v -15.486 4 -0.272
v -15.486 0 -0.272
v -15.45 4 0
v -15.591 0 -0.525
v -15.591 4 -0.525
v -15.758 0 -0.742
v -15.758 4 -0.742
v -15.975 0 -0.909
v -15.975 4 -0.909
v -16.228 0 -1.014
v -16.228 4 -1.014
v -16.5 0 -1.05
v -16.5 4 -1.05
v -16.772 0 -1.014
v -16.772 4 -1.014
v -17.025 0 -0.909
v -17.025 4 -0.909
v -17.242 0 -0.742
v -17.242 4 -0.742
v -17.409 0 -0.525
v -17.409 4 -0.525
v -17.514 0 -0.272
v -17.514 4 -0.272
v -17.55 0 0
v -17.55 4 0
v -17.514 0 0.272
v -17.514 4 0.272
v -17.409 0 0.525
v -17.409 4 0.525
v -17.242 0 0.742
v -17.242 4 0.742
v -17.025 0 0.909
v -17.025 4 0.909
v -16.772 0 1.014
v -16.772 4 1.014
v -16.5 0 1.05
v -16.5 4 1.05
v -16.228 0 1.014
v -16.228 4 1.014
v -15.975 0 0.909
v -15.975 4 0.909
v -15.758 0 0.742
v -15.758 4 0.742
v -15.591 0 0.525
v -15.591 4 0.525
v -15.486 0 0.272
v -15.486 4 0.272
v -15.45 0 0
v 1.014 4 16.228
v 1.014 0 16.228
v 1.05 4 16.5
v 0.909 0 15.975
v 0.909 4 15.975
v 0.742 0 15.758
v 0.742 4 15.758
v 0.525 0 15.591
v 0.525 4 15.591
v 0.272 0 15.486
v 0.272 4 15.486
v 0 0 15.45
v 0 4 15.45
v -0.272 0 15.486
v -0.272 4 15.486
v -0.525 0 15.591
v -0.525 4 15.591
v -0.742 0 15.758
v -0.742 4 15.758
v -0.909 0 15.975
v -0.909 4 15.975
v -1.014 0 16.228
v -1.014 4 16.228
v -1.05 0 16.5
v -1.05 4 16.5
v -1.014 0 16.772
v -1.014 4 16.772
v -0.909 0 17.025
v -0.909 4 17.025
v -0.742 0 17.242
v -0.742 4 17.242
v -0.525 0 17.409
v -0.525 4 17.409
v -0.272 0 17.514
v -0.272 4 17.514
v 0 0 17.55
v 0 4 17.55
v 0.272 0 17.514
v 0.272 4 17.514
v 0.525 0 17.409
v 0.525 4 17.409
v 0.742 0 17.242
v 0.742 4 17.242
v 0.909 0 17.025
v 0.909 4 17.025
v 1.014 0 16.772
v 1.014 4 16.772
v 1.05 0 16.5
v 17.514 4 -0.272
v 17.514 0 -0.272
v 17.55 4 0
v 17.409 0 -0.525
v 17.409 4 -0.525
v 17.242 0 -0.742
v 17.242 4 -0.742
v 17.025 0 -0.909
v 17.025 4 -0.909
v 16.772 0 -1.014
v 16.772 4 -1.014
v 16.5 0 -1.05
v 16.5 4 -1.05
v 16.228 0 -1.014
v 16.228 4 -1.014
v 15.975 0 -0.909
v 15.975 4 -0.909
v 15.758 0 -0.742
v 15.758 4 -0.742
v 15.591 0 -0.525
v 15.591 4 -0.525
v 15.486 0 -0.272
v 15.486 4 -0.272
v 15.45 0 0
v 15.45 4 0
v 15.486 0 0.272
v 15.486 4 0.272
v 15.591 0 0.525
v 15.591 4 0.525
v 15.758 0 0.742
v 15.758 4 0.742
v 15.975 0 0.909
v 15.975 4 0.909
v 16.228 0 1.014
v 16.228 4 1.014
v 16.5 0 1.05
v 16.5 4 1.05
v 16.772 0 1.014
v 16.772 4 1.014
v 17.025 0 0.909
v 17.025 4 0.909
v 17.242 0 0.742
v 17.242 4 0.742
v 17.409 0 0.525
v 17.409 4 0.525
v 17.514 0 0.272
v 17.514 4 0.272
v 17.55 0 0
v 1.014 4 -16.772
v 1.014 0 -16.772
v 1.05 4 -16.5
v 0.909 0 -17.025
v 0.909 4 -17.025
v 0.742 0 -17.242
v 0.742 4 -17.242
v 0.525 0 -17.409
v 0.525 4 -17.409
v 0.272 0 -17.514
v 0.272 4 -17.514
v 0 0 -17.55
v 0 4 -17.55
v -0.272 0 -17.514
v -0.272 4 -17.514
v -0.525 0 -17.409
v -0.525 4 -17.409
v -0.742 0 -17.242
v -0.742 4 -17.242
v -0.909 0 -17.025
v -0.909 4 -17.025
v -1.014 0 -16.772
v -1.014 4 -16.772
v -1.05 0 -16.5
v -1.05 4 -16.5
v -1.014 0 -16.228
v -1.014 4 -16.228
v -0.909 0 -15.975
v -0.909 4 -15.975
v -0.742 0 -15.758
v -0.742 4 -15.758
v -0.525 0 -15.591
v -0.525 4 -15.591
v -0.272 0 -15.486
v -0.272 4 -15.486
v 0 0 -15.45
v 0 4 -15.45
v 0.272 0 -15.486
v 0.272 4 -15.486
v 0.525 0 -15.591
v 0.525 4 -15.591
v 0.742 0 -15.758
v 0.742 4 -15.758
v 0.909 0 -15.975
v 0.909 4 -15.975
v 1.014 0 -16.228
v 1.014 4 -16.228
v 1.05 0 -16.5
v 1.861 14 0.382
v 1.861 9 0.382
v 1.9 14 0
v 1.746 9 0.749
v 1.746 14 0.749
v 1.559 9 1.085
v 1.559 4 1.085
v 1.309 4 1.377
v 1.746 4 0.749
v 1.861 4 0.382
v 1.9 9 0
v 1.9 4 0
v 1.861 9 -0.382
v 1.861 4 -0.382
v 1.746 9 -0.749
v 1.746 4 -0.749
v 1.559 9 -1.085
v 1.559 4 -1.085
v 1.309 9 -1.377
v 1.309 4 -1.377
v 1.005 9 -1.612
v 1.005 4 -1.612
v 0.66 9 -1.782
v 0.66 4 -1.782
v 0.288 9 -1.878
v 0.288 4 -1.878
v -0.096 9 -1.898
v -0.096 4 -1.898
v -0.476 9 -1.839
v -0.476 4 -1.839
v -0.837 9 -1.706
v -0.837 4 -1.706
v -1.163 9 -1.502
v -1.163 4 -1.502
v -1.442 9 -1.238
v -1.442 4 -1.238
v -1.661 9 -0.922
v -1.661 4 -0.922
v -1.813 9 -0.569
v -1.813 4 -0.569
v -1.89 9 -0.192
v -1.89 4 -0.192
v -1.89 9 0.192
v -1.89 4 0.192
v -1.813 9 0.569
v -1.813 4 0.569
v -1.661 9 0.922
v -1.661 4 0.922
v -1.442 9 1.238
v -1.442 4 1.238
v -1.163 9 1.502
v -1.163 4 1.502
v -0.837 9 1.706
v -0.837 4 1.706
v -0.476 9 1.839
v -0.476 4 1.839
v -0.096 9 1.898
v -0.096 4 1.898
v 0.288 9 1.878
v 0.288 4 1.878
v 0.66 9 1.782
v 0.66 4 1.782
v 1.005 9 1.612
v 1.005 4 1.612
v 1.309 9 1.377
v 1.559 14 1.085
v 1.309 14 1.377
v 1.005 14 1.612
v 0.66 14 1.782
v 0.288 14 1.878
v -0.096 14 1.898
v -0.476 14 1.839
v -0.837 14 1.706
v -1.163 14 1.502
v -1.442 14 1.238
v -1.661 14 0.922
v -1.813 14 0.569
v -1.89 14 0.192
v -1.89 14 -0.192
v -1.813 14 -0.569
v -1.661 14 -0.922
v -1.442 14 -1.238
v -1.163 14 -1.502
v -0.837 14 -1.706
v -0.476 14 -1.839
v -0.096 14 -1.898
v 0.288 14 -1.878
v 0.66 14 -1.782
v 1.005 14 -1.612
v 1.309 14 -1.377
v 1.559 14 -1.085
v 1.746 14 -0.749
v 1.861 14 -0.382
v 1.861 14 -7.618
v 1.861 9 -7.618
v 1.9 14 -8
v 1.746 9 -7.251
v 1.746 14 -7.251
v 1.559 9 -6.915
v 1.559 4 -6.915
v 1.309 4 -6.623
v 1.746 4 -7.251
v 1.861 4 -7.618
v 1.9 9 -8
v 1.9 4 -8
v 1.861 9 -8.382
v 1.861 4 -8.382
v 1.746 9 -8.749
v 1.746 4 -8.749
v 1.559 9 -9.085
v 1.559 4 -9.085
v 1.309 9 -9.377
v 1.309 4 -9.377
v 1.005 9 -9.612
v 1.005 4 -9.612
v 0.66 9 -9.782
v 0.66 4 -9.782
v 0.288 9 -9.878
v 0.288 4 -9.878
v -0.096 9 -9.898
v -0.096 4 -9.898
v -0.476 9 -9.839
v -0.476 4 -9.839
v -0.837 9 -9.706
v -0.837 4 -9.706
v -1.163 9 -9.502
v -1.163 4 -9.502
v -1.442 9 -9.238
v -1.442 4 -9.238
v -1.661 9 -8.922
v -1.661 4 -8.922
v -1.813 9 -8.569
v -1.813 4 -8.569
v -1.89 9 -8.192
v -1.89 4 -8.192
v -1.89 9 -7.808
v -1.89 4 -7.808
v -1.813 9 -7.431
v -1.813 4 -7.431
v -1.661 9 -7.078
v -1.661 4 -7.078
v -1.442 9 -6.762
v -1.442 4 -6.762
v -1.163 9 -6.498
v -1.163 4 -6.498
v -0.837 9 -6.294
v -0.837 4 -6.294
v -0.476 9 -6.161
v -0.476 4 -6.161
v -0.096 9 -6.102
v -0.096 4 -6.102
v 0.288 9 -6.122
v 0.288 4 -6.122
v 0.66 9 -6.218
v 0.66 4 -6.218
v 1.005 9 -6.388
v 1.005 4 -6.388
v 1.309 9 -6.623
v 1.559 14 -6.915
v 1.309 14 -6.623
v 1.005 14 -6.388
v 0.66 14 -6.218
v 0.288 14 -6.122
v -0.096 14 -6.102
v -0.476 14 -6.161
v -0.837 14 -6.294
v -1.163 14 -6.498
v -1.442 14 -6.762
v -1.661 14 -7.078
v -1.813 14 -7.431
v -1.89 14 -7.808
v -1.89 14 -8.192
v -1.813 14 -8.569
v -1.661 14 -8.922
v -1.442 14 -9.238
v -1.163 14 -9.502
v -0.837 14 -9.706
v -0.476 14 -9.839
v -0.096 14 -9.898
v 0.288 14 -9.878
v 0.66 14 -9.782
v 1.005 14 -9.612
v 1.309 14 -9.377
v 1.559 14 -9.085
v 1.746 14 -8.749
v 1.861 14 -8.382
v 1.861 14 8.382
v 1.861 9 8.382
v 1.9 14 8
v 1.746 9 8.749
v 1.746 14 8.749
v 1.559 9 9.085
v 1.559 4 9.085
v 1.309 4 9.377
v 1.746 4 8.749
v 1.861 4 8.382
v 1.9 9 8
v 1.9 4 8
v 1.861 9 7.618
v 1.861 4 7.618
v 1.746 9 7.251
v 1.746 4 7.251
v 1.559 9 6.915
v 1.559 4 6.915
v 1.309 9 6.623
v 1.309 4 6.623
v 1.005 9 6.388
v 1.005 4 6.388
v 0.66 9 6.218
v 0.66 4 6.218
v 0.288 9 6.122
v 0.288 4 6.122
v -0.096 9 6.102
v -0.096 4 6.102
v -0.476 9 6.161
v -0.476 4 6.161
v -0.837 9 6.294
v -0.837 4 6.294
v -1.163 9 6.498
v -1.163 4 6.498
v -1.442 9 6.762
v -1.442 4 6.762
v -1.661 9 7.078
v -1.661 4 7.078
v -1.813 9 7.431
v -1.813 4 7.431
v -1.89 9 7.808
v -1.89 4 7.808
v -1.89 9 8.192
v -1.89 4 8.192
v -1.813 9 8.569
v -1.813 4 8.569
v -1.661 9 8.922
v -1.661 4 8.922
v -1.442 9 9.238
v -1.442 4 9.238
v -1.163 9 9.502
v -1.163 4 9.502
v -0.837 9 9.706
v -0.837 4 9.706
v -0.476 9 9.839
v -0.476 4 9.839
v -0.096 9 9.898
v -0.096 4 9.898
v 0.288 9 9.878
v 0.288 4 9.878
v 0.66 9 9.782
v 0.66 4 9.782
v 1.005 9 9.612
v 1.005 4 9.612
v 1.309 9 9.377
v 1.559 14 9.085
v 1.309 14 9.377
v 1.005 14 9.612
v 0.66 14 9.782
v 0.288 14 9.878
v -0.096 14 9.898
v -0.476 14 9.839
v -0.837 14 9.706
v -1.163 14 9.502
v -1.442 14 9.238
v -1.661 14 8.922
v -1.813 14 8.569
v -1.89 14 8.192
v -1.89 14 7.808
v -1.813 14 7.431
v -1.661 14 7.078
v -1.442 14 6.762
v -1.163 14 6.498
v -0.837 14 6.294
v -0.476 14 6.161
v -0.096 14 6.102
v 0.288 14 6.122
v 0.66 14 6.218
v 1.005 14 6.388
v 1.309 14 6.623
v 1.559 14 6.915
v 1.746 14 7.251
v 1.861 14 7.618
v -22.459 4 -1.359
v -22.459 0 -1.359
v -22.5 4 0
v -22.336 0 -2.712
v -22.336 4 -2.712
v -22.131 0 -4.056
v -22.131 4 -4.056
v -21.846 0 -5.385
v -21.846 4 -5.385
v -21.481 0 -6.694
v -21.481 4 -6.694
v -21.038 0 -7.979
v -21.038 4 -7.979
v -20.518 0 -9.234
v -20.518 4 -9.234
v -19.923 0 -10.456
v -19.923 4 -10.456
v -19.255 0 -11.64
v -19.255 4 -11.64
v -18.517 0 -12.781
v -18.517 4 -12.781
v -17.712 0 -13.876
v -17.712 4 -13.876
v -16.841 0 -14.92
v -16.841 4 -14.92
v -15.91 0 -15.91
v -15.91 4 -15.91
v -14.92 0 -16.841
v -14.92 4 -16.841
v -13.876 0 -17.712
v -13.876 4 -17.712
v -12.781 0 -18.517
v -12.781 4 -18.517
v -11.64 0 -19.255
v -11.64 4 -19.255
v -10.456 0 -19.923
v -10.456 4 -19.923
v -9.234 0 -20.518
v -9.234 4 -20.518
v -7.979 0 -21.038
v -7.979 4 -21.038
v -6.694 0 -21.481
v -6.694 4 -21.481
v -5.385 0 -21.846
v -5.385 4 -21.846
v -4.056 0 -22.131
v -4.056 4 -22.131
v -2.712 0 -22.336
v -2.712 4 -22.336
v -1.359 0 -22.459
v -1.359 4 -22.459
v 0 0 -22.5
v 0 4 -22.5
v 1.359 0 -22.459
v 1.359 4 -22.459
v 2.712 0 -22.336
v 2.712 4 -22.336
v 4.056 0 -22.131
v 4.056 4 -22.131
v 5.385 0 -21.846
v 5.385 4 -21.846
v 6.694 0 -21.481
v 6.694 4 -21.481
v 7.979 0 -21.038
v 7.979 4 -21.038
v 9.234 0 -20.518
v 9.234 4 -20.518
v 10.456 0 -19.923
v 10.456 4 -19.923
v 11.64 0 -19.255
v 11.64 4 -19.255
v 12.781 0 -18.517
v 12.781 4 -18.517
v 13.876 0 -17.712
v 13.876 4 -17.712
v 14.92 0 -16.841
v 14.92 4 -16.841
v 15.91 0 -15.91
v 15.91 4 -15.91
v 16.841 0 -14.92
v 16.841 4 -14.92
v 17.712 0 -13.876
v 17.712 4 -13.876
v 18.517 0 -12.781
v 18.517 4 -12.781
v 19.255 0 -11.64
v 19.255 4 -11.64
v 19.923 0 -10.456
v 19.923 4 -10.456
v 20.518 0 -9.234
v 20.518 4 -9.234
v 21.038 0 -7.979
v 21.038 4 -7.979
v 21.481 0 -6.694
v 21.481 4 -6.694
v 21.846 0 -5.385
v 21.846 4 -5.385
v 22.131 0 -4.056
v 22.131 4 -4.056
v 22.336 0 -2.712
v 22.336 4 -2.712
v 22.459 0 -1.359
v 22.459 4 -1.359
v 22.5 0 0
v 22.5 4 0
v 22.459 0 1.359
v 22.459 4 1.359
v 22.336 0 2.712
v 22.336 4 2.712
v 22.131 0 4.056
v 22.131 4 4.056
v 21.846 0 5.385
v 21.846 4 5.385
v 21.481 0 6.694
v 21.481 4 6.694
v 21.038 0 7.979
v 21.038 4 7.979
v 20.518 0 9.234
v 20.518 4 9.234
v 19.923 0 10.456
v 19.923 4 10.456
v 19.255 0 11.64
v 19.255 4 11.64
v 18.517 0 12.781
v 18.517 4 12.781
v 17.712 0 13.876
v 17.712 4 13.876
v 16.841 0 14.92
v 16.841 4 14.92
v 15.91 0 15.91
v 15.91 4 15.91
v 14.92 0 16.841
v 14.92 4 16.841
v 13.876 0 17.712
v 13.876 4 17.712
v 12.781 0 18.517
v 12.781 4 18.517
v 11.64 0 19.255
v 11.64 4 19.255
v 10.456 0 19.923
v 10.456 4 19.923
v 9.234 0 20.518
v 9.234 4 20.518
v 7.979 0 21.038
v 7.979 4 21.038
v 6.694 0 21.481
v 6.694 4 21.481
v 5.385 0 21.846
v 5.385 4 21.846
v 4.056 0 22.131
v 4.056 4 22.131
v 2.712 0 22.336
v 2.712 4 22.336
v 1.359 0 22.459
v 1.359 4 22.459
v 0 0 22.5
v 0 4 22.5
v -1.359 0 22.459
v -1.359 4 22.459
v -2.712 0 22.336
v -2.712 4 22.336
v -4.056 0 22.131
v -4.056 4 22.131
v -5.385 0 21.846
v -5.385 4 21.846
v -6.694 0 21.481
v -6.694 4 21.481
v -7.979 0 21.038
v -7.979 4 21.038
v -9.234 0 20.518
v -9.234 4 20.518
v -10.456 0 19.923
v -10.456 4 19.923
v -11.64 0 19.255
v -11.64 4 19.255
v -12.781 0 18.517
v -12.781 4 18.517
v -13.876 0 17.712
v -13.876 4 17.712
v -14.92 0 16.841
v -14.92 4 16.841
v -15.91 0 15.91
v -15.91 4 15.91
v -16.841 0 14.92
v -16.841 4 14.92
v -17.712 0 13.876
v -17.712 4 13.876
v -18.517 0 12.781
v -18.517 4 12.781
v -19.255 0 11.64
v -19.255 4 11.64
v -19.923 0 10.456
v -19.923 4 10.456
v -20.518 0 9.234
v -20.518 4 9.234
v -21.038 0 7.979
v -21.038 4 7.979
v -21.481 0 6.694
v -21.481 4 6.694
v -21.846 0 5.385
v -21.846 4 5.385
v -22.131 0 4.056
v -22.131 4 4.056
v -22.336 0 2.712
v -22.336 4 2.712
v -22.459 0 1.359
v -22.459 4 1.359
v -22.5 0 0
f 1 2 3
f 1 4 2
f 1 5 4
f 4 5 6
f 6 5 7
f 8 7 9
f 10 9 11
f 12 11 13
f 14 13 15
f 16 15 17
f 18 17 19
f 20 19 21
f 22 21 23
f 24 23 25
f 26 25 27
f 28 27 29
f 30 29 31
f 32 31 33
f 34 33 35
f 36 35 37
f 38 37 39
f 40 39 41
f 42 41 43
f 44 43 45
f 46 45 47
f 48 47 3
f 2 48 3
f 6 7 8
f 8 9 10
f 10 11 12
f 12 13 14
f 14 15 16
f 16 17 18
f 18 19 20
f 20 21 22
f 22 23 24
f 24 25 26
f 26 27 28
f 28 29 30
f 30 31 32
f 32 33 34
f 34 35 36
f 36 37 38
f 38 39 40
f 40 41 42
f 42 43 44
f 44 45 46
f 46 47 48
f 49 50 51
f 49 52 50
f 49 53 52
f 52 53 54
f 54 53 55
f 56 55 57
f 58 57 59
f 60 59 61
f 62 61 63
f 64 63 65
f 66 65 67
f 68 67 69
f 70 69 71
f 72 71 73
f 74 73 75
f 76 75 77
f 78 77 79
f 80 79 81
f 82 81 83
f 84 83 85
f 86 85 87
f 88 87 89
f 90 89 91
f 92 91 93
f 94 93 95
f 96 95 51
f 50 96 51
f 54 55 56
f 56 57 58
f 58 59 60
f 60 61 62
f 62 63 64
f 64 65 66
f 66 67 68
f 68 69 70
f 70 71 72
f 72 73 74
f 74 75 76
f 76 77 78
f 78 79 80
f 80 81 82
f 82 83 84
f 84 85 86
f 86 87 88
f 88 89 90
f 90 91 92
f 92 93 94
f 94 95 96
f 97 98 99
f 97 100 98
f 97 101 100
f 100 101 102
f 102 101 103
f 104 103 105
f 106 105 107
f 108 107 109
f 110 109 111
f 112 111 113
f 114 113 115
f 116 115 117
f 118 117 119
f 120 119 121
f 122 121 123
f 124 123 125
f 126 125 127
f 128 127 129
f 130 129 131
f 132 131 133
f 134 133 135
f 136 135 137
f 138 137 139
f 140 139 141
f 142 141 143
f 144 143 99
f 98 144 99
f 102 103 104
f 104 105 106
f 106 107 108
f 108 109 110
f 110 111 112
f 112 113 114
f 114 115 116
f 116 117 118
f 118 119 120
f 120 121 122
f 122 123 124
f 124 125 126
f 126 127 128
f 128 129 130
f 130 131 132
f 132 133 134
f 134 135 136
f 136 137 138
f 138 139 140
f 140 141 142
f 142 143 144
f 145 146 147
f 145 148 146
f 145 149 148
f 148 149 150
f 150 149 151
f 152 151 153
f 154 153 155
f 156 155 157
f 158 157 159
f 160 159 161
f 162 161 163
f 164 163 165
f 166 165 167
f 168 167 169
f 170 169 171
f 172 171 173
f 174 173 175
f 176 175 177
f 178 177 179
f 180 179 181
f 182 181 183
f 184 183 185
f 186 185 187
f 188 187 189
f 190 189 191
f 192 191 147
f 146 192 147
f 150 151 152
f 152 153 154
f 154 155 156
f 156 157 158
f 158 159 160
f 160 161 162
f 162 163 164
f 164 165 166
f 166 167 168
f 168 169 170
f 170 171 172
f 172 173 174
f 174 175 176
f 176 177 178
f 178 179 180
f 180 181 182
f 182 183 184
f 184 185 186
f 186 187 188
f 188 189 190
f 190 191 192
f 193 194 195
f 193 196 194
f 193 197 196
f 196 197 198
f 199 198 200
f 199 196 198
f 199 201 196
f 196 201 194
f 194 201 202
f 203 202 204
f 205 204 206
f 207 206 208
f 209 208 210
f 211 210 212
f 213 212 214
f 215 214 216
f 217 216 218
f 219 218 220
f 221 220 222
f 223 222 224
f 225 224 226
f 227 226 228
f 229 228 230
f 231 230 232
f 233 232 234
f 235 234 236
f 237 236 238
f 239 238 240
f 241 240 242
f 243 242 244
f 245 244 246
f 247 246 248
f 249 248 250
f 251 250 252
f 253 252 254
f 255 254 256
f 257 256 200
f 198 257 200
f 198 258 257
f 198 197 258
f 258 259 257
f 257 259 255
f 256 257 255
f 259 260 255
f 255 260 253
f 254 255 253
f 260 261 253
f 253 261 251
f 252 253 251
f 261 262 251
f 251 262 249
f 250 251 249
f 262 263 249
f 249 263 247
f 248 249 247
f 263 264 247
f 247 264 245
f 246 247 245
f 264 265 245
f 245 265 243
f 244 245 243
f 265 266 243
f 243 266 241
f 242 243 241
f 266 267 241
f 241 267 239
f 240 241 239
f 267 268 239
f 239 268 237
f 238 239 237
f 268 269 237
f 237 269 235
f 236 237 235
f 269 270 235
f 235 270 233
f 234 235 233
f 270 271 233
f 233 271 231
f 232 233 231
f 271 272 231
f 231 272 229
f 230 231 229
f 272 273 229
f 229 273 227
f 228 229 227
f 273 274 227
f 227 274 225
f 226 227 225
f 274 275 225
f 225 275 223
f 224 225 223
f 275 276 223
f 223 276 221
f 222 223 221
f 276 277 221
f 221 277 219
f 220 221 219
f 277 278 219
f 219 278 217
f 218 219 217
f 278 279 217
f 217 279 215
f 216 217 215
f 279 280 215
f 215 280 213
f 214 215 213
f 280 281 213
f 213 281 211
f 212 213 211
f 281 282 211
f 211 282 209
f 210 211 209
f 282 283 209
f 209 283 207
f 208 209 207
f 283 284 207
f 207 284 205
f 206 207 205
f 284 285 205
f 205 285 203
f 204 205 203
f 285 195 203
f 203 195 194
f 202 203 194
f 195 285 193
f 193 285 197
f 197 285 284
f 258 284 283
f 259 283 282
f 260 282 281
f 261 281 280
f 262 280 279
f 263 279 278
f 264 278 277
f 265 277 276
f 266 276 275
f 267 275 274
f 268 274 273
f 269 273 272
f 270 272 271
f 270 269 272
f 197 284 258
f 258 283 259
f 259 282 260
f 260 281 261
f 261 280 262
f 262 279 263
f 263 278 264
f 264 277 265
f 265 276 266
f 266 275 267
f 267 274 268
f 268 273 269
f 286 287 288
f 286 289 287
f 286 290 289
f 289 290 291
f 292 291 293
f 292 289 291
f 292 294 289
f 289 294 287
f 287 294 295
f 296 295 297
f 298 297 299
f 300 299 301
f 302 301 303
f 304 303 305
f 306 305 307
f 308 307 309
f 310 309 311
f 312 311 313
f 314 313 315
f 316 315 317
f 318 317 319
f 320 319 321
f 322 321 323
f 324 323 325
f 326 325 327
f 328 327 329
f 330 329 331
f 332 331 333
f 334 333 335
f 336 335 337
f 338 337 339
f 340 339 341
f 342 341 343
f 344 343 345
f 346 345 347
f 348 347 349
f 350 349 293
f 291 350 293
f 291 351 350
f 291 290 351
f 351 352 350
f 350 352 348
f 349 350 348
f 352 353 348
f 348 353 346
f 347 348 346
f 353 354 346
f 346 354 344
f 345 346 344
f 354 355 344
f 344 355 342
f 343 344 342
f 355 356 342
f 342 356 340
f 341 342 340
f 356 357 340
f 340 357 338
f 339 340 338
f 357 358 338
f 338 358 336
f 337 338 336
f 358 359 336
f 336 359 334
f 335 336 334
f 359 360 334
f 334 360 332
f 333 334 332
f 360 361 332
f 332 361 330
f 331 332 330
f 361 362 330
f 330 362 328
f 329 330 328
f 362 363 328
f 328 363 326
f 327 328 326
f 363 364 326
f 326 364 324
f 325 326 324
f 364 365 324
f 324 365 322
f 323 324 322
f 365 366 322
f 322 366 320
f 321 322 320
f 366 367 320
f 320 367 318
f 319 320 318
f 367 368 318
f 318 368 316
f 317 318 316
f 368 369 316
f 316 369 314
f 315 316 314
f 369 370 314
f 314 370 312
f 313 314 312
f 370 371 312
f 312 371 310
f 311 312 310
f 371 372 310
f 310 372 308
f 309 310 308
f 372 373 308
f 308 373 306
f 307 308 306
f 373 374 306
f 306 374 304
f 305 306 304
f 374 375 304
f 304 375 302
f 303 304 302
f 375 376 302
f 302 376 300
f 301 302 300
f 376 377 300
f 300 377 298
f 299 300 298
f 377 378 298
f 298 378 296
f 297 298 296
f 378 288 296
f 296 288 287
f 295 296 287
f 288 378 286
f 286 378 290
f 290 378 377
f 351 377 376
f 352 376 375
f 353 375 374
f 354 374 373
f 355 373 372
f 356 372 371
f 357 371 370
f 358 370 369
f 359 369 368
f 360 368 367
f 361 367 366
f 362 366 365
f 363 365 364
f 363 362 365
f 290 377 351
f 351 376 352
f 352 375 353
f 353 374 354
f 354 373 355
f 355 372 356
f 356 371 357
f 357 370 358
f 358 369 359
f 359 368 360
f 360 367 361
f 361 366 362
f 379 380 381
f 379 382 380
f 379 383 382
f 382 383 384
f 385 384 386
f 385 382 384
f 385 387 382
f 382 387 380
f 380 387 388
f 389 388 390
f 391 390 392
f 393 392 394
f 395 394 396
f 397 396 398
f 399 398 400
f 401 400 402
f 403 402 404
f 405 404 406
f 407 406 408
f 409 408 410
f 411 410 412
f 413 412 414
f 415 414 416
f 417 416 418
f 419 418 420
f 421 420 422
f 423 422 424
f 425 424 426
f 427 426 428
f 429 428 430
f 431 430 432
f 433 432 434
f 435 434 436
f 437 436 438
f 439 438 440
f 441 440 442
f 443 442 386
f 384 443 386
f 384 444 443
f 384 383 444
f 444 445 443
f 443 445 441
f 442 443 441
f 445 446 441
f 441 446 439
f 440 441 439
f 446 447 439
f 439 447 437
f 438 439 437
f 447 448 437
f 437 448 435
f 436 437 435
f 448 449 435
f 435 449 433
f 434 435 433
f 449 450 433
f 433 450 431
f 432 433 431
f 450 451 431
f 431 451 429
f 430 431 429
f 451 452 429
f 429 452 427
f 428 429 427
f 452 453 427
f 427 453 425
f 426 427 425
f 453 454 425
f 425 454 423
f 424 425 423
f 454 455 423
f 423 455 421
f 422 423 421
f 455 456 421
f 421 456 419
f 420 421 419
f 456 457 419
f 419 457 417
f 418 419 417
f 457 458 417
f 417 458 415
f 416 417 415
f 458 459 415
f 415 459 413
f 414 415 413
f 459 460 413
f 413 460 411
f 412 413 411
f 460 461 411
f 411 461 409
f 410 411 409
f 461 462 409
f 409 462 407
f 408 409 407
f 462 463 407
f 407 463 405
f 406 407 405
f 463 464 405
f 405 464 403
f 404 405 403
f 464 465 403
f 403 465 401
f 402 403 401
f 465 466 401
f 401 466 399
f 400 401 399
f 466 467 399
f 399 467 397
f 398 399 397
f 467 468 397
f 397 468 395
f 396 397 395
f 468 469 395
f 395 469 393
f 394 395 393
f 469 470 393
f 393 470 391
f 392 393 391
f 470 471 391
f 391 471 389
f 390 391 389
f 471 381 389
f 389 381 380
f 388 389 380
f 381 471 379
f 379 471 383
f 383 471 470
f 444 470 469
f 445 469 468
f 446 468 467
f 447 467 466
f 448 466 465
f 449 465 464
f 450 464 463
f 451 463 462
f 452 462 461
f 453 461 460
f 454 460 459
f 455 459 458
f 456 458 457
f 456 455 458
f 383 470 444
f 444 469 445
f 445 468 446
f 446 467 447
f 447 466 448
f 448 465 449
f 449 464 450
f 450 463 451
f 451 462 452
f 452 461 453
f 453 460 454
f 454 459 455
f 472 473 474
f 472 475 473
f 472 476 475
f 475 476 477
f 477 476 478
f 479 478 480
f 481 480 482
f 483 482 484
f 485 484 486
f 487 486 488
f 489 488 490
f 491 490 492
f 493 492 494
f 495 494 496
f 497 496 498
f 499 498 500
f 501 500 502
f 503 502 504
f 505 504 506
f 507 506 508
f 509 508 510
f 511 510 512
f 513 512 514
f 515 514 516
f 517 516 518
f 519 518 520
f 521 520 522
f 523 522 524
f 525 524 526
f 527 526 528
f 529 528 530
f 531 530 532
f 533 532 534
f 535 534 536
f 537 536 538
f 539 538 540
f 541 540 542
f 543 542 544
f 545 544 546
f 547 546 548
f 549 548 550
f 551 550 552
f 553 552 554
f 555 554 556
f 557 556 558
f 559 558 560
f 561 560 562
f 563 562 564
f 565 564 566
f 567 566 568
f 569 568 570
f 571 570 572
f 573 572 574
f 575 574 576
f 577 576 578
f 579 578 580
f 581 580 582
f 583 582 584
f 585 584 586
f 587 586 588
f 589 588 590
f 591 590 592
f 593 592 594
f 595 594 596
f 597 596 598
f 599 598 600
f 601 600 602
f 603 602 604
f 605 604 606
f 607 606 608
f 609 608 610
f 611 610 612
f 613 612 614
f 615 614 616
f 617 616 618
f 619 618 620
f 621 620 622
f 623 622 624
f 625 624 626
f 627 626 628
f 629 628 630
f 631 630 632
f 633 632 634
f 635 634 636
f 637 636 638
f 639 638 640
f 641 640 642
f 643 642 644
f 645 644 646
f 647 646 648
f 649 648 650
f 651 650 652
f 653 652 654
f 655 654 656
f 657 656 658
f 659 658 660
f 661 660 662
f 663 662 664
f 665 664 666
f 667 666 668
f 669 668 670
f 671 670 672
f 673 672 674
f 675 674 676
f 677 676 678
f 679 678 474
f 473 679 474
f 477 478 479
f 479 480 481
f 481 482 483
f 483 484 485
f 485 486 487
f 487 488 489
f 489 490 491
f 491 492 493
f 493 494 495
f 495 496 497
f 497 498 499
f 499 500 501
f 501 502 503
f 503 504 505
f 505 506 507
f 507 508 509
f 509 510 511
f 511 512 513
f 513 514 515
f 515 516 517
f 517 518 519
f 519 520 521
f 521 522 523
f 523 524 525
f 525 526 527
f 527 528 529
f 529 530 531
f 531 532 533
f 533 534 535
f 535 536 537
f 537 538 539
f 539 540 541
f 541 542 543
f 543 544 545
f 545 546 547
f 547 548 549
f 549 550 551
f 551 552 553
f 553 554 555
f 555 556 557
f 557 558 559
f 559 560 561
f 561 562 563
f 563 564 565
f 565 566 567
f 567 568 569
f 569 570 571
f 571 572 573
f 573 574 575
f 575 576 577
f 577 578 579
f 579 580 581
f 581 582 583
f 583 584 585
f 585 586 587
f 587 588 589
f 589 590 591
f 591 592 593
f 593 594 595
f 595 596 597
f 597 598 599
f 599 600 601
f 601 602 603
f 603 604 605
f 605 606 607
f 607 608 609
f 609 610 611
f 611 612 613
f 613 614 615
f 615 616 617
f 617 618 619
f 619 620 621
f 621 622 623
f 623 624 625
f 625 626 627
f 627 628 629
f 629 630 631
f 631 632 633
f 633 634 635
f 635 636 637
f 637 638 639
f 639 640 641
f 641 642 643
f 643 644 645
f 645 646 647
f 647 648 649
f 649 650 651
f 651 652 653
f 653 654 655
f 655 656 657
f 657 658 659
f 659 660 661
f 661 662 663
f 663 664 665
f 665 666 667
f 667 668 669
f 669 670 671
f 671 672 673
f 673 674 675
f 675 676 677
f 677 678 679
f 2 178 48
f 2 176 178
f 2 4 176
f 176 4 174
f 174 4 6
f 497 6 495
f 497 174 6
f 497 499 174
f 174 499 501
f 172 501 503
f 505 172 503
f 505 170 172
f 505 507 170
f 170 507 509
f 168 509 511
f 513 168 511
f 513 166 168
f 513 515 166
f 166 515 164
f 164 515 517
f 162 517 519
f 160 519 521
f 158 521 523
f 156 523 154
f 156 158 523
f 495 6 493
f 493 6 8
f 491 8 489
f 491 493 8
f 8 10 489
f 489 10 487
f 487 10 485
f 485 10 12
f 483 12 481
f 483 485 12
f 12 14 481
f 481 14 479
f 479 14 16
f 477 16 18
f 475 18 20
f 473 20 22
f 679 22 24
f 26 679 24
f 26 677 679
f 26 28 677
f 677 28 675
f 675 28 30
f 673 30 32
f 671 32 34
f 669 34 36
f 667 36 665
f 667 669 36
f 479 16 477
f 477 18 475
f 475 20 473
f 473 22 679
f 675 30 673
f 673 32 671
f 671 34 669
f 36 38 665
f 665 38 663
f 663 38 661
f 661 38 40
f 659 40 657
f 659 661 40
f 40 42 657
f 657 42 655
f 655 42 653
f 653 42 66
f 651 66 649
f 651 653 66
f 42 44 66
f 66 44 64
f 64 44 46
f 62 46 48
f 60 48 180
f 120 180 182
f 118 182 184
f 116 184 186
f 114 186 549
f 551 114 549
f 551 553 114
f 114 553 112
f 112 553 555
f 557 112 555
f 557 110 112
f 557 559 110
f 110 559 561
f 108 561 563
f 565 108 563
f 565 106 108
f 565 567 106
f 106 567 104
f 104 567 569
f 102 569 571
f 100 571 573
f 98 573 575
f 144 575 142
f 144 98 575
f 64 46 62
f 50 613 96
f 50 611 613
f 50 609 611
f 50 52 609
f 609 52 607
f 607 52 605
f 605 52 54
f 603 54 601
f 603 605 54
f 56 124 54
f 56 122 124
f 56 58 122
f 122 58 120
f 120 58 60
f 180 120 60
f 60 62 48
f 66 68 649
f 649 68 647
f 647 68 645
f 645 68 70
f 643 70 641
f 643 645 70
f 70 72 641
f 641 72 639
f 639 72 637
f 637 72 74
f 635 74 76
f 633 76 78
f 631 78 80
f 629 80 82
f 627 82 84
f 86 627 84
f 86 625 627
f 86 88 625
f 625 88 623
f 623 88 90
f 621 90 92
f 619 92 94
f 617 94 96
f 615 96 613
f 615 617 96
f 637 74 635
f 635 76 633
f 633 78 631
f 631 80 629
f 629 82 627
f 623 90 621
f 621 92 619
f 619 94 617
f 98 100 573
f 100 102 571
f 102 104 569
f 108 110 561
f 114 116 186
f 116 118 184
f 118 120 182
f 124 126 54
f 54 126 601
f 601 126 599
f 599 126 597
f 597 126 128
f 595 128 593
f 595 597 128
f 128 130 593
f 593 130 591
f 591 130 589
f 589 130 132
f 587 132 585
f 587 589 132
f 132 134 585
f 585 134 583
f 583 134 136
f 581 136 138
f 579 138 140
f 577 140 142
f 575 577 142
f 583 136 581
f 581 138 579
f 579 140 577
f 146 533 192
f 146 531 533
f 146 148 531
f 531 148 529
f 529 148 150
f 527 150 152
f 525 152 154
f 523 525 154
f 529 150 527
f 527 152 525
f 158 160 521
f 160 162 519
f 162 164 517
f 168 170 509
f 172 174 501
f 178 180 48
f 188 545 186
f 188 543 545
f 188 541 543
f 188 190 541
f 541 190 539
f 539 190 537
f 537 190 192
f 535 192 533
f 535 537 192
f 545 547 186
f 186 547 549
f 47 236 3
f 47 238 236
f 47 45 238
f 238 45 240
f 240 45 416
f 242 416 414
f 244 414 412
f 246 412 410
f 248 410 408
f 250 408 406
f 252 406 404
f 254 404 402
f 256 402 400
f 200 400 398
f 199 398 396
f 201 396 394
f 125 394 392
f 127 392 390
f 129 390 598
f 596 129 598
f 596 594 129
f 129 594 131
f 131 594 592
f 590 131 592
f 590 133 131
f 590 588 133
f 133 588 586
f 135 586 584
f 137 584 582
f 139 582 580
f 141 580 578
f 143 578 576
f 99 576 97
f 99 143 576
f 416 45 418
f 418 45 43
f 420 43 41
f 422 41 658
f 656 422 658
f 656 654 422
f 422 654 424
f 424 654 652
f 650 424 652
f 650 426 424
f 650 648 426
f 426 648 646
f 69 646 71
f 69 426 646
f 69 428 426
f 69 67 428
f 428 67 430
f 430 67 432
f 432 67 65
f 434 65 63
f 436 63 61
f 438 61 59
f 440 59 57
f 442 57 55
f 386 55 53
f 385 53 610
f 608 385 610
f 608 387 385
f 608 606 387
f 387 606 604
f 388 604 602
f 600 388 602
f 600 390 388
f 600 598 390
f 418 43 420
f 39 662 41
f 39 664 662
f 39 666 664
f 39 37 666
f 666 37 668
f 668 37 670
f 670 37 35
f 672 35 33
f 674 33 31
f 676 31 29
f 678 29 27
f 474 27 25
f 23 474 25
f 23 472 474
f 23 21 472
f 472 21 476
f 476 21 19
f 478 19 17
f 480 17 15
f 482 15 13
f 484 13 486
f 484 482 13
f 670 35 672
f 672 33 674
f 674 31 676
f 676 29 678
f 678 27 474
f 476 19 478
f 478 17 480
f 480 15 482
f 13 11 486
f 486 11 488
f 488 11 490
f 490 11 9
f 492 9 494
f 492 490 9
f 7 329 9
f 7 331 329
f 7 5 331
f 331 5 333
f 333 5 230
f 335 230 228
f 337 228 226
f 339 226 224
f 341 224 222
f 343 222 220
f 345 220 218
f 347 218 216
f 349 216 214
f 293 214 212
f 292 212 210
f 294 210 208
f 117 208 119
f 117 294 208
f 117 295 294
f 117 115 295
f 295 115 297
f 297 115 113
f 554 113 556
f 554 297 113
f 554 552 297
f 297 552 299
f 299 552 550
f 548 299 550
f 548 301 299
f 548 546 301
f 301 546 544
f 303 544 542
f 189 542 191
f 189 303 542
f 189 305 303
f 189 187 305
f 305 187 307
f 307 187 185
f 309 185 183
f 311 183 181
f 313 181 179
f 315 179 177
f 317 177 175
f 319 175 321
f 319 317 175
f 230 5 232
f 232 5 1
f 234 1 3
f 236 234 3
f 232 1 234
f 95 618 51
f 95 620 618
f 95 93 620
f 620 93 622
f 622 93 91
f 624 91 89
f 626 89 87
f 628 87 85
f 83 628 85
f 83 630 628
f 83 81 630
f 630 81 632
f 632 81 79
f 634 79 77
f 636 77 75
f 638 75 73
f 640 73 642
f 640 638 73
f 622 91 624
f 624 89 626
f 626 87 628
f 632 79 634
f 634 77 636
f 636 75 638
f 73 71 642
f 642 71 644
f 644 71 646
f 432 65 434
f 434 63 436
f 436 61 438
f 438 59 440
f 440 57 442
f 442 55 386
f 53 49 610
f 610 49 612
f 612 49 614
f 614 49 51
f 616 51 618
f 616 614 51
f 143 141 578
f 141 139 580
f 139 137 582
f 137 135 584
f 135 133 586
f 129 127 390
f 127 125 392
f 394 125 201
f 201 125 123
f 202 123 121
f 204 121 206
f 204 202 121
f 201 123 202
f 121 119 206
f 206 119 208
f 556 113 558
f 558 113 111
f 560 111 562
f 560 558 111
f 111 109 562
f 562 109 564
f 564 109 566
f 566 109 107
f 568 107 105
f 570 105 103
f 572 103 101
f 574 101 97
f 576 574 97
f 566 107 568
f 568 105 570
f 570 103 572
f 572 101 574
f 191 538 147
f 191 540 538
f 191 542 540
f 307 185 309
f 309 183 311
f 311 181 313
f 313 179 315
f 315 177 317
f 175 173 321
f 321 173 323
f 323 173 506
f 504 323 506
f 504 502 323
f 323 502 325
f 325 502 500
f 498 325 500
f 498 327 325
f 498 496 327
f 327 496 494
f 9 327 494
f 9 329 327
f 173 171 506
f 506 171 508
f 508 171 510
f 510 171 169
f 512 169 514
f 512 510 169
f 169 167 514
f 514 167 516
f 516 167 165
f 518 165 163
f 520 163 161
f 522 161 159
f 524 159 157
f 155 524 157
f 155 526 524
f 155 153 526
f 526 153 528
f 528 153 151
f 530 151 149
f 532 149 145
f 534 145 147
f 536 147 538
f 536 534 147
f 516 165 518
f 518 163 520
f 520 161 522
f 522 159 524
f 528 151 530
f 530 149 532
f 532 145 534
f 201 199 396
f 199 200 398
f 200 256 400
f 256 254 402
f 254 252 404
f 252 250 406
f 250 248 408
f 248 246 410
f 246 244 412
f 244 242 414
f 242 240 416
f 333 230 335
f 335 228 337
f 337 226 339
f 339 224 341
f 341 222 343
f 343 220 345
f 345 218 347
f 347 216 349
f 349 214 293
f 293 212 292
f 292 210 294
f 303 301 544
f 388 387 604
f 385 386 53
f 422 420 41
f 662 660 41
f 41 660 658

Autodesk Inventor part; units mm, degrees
ref_plane "YZ Plane" through (0, 0, 0) normal (1, 0, 0) x (0, 1, 0)
ref_plane "XZ Plane" through (0, 0, 0) normal (0, 1, 0) x (-1, 0, 0)
ref_plane "XY Plane" through (0, 0, 0) normal (0, 0, 1) x (1, 0, 0)
sketch "Sketch1" plane through (0, 0, 0) normal (0, 1, 0) x (-1, 0, 0)
  circle A0 centre (0, 0) radius 22.5
  dimension "d0" = 45
extrude "Extrusion1" add sketch "Sketch1" along normal blind 4
sketch "Sketch2" plane through (0, 4, 0) normal (0, 1, 0) x (1, 0, 0)
  line L0 (0, 0) -> (0, 8) construction
  line L1 (0, 0) -> (0, -8) construction
  circle A0 centre (0, 8) radius 1.9
  circle A1 centre (0, 0) radius 1.9
  circle A2 centre (0, -8) radius 1.9
  dimension "d3" = 8
  dimension "d4" = 8
  dimension "d5" = 3.8
  dimension "d6" = 3.8
  dimension "d7" = 3.8
extrude "Extrusion2" add sketch "Sketch2" along normal blind 10
sketch "Sketch7" plane through (0, 0, 0) normal (0, -1, 0) x (1, 0, 0)
  circle A0 centre (0, 0) radius 16.5 construction
  circle A1 centre (0, 16.5) radius 1.05
  circle A2 centre (16.5, 0) radius 1.05
  circle A3 centre (-16.5, 0) radius 1.05
  circle A4 centre (0, -16.5) radius 1.05
  dimension "d42" = 33
  dimension "d43" = 2.1
  dimension "d44" = 2.1
  dimension "d45" = 2.1
  dimension "d46" = 2.1
extrude "Extrusion6" cut sketch "Sketch7" against normal blind 5
properties part number "Motor Mount Barebones bigscrew4mmheight"
